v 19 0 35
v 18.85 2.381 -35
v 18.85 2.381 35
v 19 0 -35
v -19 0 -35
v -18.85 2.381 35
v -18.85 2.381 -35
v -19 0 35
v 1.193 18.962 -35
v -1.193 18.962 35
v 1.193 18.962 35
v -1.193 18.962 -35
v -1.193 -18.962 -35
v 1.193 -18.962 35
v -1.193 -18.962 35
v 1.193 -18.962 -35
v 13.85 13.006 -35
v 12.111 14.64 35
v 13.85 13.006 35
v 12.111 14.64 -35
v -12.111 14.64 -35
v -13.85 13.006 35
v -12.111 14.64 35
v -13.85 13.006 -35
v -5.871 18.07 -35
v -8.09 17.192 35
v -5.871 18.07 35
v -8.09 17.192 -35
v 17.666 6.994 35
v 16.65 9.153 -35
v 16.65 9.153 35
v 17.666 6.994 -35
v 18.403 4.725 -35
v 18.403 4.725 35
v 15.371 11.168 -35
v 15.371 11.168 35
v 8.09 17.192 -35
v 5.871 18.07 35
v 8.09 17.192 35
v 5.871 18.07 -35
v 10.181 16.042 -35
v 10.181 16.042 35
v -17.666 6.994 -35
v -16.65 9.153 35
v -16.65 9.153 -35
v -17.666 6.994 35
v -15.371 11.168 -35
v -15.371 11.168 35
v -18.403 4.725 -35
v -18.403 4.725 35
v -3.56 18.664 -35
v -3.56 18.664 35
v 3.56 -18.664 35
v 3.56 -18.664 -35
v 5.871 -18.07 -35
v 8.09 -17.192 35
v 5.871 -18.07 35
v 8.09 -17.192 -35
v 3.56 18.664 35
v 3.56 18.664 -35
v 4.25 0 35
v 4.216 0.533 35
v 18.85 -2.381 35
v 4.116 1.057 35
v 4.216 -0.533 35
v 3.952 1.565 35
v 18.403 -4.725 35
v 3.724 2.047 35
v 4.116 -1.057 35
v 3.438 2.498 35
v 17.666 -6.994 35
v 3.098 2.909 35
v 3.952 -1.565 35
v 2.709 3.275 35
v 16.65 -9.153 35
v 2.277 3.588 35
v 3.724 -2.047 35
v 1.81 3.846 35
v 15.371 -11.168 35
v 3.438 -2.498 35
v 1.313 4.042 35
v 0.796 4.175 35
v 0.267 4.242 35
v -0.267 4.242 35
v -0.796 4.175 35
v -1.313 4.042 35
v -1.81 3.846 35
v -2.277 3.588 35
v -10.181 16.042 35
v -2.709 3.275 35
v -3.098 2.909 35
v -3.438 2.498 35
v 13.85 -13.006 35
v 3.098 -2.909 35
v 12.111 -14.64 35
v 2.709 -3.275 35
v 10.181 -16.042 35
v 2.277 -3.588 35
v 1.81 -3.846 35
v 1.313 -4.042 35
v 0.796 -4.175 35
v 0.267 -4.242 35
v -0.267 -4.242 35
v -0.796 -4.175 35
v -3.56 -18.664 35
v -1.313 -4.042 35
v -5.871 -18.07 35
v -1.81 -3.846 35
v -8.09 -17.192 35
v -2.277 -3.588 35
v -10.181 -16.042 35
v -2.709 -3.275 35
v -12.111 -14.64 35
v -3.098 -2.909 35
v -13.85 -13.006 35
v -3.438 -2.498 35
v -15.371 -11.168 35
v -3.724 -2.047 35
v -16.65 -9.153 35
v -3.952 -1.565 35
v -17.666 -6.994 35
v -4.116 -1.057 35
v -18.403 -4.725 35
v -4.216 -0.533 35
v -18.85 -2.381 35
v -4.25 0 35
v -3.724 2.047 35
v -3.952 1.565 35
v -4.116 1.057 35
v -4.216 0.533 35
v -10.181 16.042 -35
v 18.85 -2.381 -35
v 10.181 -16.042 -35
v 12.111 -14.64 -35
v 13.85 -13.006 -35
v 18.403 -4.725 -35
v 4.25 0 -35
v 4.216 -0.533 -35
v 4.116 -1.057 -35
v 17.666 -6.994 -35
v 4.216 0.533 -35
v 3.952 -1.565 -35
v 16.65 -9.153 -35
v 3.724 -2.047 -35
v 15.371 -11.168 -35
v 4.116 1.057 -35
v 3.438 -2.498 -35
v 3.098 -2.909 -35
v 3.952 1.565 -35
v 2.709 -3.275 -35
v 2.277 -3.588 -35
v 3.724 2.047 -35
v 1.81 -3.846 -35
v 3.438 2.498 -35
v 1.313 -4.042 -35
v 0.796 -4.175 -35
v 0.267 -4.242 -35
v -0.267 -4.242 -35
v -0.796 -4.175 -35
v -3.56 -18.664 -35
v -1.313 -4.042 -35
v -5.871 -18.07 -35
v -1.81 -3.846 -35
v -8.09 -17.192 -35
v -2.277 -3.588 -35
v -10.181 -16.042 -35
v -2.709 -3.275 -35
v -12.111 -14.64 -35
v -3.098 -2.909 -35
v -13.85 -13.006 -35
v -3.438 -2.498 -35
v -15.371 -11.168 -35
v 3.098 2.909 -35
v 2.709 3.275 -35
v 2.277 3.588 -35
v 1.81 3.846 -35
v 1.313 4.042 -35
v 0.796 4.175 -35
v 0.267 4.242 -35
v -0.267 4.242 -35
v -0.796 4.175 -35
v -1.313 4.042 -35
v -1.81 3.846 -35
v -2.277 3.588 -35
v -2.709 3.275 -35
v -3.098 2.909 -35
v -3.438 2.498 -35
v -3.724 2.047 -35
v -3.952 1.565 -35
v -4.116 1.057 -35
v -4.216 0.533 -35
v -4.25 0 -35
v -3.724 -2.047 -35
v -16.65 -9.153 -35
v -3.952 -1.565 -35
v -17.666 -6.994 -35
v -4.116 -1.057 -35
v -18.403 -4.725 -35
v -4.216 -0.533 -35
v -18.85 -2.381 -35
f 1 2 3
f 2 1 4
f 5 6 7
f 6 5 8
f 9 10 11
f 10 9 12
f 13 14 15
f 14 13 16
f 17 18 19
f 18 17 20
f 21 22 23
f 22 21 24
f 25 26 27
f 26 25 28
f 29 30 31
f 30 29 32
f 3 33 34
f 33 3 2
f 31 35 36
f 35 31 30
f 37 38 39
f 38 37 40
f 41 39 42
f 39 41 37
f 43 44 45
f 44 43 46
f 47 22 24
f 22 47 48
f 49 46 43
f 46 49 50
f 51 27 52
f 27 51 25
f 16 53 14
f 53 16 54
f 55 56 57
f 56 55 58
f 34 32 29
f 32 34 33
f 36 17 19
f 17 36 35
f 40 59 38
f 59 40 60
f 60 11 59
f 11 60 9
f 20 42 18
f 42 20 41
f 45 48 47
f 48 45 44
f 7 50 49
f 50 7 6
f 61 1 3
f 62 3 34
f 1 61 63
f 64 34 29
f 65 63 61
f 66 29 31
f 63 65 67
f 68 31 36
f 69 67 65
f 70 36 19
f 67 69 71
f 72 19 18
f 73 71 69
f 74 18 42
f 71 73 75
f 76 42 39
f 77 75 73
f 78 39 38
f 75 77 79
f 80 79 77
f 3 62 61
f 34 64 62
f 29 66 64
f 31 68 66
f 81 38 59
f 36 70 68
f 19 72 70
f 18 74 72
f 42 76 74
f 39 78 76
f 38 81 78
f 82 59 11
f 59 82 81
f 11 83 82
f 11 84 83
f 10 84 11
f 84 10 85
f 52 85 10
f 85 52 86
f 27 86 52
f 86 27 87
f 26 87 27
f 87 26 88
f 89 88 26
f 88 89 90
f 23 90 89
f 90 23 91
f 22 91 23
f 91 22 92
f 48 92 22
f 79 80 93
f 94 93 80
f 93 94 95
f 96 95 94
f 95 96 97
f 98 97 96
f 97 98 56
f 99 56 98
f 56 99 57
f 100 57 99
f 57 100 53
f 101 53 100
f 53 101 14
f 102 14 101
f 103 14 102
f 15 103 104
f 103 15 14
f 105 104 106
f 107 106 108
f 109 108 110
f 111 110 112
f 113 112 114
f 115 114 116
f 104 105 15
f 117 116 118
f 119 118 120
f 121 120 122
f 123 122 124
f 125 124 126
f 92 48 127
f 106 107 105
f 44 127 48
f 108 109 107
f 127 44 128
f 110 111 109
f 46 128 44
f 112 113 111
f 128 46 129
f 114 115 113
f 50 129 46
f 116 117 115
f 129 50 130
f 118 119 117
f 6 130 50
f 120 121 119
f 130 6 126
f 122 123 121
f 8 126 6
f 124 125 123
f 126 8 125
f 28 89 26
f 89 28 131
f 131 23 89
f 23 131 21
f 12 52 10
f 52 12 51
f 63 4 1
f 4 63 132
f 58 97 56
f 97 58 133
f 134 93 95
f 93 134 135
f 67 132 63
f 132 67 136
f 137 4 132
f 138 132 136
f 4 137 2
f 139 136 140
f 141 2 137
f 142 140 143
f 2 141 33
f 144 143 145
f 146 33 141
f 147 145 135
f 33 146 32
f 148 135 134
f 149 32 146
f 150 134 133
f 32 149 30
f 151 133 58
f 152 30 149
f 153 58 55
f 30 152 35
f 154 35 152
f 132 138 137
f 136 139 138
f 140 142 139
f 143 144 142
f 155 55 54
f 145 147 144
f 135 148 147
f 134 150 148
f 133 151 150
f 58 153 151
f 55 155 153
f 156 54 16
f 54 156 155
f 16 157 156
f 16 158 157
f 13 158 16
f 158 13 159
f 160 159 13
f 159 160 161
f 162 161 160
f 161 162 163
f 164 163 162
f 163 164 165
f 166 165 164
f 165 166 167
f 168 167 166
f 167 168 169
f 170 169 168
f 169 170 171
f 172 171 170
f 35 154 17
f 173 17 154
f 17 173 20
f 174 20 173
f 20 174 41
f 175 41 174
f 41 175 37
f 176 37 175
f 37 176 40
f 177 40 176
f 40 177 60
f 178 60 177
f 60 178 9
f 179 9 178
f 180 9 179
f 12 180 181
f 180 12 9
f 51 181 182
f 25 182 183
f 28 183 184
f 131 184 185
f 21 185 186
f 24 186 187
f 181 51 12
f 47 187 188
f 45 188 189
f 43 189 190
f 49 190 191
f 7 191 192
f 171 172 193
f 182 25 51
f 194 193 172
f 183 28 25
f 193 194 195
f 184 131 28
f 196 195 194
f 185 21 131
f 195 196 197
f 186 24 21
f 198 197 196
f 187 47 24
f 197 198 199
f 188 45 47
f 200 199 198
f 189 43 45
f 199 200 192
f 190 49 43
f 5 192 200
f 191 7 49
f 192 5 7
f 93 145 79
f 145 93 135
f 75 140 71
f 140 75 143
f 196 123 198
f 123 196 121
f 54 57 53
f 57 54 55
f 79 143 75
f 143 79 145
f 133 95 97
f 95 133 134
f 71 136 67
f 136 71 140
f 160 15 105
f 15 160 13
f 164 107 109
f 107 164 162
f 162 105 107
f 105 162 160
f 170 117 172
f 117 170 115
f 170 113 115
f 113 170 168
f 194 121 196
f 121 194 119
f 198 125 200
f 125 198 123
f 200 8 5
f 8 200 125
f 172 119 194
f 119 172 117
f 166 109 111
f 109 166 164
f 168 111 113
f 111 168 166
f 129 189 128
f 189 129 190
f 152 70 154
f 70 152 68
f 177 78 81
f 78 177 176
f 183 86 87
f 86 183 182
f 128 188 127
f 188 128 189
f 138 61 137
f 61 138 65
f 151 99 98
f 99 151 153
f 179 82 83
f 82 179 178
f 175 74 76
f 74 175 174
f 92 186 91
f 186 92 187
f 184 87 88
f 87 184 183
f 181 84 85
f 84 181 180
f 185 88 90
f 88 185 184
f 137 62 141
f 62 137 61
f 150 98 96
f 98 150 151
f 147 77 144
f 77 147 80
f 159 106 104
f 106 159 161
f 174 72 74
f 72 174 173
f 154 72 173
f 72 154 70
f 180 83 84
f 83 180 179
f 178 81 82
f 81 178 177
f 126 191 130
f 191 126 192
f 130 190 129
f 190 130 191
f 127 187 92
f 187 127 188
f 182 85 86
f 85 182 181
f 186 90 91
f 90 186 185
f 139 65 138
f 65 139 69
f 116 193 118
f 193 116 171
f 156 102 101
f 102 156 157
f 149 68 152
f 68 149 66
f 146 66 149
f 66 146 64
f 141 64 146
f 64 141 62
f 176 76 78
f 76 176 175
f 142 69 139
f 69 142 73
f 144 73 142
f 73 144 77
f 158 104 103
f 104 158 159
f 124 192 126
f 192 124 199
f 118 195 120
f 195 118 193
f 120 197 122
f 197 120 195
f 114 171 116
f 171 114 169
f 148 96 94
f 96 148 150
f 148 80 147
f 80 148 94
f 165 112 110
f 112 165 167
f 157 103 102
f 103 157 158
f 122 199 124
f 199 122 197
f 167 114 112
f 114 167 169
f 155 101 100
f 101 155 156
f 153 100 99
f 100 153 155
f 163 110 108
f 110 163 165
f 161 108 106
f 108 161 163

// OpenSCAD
$fn = 50;


difference() {
	union() {
		translate(v = [0, 0, -35.0000000000]) {
			cylinder(h = 70, r = 19.0000000000);
		}
	}
	union() {
		translate(v = [0, 0, -100.0000000000]) {
			cylinder(h = 200, r = 4.2500000000);
		}
	}
}
